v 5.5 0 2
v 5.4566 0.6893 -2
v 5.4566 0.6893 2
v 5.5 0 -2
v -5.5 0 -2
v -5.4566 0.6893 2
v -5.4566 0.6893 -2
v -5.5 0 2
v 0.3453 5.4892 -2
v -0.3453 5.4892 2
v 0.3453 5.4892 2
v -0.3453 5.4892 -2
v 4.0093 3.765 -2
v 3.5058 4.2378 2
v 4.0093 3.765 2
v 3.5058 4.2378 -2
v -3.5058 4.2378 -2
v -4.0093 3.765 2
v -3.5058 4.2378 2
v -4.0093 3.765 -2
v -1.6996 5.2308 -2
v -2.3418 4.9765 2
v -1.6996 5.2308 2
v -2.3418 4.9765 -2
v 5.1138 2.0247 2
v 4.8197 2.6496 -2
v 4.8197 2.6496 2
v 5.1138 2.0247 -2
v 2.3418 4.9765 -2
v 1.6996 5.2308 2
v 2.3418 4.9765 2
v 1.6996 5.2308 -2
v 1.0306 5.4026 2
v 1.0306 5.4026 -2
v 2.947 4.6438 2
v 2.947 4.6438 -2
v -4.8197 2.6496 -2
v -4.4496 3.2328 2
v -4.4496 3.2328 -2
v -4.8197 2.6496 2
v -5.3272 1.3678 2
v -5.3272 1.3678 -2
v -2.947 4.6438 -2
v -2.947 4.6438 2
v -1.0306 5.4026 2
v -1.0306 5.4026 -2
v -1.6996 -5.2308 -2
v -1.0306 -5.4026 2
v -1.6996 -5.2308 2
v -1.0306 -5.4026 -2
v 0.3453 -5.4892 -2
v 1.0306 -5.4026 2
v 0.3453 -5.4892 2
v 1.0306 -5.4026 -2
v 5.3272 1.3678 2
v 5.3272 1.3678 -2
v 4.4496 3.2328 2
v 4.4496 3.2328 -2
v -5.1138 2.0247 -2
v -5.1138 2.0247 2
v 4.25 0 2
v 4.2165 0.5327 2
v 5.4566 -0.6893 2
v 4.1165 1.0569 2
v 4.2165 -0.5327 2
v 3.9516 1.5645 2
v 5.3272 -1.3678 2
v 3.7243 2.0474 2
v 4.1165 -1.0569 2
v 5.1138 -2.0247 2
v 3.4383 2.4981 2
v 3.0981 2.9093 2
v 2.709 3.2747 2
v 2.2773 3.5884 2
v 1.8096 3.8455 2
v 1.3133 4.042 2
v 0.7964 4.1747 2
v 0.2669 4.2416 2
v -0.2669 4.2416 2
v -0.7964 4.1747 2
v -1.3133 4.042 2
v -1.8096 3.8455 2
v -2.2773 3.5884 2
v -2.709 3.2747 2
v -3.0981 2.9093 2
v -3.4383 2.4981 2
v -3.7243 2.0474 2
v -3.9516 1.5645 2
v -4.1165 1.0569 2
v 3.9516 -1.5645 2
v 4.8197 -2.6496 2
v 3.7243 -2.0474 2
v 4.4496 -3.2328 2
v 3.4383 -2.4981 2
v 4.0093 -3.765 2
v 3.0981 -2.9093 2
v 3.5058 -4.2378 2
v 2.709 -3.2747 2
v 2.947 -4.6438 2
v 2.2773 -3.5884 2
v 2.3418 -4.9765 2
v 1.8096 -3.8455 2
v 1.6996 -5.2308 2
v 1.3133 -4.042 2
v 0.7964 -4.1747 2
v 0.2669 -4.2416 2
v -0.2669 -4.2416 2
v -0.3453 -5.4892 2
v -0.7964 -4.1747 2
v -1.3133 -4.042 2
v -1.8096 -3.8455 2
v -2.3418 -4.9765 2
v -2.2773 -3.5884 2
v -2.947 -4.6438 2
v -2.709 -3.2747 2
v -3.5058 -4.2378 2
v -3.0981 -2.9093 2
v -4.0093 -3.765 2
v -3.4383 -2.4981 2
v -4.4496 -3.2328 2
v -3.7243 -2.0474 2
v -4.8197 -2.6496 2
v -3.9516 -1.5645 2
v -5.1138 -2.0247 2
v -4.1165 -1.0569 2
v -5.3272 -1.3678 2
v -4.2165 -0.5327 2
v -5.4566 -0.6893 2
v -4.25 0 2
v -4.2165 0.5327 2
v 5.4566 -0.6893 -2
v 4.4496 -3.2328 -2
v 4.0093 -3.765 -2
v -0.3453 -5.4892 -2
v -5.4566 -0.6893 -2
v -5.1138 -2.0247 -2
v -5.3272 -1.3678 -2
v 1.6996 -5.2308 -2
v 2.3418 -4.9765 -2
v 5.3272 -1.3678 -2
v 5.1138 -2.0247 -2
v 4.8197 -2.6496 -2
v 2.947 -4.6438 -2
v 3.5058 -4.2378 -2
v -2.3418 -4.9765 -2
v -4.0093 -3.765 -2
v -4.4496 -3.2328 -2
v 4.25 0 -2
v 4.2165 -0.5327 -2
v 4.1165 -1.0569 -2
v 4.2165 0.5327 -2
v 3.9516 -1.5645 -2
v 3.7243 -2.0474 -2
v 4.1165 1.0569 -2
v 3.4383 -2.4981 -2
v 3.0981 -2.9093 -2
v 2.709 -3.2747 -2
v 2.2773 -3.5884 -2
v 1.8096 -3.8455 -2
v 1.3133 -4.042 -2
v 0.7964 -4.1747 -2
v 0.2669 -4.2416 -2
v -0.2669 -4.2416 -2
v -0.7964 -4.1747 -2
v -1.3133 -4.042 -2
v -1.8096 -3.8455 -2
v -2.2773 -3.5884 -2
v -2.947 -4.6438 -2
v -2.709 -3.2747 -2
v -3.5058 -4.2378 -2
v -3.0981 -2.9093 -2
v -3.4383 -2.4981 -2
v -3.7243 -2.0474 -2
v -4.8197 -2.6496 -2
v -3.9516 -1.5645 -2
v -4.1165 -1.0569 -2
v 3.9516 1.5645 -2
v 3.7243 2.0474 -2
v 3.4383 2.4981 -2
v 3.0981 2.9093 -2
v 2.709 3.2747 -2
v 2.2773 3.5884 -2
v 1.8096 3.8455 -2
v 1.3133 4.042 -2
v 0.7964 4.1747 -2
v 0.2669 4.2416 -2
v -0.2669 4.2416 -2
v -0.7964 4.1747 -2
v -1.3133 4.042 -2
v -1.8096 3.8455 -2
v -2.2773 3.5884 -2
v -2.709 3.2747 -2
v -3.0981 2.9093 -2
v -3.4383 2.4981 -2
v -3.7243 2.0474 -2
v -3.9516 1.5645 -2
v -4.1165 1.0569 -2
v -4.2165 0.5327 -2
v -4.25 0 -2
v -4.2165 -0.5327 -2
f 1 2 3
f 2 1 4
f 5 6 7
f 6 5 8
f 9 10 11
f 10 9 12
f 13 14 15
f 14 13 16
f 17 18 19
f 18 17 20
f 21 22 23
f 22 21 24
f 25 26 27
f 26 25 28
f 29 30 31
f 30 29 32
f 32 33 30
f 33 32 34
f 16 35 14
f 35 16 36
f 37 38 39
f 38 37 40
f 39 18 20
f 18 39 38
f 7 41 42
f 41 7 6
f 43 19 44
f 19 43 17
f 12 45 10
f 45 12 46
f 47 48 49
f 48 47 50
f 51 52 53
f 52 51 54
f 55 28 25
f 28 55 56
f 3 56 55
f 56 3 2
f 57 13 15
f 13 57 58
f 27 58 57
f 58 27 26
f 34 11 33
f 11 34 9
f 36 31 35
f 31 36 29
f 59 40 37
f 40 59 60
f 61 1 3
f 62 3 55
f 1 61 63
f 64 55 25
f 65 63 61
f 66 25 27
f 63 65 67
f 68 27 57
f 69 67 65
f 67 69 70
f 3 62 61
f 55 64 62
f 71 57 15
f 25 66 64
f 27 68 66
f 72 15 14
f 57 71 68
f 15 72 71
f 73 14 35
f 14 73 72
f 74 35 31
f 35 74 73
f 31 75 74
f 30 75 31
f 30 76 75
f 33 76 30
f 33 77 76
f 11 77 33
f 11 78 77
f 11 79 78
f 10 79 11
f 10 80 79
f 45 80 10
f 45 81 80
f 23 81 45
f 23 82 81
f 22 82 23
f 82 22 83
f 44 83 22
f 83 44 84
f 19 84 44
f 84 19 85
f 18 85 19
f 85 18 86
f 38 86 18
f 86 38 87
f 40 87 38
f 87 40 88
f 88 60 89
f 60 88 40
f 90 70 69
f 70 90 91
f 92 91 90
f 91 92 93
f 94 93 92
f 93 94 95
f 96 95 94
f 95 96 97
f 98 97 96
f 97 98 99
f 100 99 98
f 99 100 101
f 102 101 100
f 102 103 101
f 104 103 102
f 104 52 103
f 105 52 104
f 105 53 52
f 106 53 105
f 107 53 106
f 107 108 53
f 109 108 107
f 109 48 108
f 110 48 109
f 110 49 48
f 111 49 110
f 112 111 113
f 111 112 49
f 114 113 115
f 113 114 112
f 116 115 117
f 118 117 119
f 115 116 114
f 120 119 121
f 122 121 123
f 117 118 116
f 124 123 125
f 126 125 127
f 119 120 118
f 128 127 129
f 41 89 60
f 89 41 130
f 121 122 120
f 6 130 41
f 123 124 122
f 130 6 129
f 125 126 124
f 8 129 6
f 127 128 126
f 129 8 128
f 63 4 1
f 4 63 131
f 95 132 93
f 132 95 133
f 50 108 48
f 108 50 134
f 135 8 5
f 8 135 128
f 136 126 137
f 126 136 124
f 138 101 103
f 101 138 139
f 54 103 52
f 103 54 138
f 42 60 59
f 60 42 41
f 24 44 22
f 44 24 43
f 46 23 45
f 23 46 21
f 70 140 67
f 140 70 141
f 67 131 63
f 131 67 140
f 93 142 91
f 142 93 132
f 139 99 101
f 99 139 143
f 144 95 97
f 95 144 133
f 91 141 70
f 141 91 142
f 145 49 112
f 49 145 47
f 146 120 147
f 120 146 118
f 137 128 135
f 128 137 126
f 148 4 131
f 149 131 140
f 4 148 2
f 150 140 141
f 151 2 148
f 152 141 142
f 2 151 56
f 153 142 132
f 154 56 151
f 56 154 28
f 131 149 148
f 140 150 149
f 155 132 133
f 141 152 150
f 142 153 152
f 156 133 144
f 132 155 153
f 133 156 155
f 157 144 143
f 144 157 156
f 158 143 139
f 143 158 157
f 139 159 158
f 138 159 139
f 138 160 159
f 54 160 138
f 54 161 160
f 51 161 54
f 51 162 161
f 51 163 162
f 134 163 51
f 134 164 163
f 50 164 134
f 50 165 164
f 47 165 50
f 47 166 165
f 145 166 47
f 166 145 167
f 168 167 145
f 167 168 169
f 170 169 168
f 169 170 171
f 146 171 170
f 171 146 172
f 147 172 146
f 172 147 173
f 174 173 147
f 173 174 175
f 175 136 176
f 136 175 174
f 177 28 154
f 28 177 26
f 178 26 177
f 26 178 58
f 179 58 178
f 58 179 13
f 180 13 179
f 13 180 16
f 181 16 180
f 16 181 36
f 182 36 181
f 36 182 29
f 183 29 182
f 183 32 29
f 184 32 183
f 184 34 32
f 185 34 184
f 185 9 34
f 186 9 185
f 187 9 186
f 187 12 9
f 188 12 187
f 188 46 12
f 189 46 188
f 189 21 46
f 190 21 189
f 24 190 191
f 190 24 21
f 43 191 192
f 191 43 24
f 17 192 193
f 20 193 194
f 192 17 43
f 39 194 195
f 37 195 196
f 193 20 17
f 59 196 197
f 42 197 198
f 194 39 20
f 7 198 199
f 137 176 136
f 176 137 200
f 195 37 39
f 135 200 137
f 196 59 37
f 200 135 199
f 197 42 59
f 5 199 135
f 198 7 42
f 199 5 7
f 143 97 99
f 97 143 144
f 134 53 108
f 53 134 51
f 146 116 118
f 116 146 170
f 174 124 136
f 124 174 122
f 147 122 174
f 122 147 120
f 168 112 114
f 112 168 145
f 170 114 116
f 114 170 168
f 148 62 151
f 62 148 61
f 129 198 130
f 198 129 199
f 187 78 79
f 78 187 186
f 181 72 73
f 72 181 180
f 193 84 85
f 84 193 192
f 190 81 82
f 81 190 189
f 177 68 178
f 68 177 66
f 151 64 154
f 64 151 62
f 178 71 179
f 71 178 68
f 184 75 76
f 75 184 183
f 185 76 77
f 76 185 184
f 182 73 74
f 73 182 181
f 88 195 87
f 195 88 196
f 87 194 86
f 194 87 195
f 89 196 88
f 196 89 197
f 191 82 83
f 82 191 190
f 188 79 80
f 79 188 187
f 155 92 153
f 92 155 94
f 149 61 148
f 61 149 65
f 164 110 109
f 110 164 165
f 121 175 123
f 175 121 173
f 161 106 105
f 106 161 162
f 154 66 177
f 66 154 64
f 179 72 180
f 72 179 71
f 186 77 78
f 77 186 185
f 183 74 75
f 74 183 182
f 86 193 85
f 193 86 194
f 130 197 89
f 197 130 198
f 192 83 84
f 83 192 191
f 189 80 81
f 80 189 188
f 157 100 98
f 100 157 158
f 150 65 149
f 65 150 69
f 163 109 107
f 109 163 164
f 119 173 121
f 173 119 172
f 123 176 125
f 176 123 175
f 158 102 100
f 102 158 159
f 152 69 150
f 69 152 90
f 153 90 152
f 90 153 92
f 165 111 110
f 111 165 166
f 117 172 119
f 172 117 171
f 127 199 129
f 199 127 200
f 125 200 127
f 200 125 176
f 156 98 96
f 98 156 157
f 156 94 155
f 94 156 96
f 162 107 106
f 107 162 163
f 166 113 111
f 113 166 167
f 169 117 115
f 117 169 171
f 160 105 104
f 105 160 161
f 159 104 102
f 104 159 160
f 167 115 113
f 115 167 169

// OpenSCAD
$fn = 50;


difference() {
	union() {
		translate(v = [0, 0, -2.0000000000]) {
			cylinder(h = 4, r = 5.5000000000);
		}
	}
	union() {
		translate(v = [0, 0, -100.0000000000]) {
			cylinder(h = 200, r = 4.2500000000);
		}
	}
}
